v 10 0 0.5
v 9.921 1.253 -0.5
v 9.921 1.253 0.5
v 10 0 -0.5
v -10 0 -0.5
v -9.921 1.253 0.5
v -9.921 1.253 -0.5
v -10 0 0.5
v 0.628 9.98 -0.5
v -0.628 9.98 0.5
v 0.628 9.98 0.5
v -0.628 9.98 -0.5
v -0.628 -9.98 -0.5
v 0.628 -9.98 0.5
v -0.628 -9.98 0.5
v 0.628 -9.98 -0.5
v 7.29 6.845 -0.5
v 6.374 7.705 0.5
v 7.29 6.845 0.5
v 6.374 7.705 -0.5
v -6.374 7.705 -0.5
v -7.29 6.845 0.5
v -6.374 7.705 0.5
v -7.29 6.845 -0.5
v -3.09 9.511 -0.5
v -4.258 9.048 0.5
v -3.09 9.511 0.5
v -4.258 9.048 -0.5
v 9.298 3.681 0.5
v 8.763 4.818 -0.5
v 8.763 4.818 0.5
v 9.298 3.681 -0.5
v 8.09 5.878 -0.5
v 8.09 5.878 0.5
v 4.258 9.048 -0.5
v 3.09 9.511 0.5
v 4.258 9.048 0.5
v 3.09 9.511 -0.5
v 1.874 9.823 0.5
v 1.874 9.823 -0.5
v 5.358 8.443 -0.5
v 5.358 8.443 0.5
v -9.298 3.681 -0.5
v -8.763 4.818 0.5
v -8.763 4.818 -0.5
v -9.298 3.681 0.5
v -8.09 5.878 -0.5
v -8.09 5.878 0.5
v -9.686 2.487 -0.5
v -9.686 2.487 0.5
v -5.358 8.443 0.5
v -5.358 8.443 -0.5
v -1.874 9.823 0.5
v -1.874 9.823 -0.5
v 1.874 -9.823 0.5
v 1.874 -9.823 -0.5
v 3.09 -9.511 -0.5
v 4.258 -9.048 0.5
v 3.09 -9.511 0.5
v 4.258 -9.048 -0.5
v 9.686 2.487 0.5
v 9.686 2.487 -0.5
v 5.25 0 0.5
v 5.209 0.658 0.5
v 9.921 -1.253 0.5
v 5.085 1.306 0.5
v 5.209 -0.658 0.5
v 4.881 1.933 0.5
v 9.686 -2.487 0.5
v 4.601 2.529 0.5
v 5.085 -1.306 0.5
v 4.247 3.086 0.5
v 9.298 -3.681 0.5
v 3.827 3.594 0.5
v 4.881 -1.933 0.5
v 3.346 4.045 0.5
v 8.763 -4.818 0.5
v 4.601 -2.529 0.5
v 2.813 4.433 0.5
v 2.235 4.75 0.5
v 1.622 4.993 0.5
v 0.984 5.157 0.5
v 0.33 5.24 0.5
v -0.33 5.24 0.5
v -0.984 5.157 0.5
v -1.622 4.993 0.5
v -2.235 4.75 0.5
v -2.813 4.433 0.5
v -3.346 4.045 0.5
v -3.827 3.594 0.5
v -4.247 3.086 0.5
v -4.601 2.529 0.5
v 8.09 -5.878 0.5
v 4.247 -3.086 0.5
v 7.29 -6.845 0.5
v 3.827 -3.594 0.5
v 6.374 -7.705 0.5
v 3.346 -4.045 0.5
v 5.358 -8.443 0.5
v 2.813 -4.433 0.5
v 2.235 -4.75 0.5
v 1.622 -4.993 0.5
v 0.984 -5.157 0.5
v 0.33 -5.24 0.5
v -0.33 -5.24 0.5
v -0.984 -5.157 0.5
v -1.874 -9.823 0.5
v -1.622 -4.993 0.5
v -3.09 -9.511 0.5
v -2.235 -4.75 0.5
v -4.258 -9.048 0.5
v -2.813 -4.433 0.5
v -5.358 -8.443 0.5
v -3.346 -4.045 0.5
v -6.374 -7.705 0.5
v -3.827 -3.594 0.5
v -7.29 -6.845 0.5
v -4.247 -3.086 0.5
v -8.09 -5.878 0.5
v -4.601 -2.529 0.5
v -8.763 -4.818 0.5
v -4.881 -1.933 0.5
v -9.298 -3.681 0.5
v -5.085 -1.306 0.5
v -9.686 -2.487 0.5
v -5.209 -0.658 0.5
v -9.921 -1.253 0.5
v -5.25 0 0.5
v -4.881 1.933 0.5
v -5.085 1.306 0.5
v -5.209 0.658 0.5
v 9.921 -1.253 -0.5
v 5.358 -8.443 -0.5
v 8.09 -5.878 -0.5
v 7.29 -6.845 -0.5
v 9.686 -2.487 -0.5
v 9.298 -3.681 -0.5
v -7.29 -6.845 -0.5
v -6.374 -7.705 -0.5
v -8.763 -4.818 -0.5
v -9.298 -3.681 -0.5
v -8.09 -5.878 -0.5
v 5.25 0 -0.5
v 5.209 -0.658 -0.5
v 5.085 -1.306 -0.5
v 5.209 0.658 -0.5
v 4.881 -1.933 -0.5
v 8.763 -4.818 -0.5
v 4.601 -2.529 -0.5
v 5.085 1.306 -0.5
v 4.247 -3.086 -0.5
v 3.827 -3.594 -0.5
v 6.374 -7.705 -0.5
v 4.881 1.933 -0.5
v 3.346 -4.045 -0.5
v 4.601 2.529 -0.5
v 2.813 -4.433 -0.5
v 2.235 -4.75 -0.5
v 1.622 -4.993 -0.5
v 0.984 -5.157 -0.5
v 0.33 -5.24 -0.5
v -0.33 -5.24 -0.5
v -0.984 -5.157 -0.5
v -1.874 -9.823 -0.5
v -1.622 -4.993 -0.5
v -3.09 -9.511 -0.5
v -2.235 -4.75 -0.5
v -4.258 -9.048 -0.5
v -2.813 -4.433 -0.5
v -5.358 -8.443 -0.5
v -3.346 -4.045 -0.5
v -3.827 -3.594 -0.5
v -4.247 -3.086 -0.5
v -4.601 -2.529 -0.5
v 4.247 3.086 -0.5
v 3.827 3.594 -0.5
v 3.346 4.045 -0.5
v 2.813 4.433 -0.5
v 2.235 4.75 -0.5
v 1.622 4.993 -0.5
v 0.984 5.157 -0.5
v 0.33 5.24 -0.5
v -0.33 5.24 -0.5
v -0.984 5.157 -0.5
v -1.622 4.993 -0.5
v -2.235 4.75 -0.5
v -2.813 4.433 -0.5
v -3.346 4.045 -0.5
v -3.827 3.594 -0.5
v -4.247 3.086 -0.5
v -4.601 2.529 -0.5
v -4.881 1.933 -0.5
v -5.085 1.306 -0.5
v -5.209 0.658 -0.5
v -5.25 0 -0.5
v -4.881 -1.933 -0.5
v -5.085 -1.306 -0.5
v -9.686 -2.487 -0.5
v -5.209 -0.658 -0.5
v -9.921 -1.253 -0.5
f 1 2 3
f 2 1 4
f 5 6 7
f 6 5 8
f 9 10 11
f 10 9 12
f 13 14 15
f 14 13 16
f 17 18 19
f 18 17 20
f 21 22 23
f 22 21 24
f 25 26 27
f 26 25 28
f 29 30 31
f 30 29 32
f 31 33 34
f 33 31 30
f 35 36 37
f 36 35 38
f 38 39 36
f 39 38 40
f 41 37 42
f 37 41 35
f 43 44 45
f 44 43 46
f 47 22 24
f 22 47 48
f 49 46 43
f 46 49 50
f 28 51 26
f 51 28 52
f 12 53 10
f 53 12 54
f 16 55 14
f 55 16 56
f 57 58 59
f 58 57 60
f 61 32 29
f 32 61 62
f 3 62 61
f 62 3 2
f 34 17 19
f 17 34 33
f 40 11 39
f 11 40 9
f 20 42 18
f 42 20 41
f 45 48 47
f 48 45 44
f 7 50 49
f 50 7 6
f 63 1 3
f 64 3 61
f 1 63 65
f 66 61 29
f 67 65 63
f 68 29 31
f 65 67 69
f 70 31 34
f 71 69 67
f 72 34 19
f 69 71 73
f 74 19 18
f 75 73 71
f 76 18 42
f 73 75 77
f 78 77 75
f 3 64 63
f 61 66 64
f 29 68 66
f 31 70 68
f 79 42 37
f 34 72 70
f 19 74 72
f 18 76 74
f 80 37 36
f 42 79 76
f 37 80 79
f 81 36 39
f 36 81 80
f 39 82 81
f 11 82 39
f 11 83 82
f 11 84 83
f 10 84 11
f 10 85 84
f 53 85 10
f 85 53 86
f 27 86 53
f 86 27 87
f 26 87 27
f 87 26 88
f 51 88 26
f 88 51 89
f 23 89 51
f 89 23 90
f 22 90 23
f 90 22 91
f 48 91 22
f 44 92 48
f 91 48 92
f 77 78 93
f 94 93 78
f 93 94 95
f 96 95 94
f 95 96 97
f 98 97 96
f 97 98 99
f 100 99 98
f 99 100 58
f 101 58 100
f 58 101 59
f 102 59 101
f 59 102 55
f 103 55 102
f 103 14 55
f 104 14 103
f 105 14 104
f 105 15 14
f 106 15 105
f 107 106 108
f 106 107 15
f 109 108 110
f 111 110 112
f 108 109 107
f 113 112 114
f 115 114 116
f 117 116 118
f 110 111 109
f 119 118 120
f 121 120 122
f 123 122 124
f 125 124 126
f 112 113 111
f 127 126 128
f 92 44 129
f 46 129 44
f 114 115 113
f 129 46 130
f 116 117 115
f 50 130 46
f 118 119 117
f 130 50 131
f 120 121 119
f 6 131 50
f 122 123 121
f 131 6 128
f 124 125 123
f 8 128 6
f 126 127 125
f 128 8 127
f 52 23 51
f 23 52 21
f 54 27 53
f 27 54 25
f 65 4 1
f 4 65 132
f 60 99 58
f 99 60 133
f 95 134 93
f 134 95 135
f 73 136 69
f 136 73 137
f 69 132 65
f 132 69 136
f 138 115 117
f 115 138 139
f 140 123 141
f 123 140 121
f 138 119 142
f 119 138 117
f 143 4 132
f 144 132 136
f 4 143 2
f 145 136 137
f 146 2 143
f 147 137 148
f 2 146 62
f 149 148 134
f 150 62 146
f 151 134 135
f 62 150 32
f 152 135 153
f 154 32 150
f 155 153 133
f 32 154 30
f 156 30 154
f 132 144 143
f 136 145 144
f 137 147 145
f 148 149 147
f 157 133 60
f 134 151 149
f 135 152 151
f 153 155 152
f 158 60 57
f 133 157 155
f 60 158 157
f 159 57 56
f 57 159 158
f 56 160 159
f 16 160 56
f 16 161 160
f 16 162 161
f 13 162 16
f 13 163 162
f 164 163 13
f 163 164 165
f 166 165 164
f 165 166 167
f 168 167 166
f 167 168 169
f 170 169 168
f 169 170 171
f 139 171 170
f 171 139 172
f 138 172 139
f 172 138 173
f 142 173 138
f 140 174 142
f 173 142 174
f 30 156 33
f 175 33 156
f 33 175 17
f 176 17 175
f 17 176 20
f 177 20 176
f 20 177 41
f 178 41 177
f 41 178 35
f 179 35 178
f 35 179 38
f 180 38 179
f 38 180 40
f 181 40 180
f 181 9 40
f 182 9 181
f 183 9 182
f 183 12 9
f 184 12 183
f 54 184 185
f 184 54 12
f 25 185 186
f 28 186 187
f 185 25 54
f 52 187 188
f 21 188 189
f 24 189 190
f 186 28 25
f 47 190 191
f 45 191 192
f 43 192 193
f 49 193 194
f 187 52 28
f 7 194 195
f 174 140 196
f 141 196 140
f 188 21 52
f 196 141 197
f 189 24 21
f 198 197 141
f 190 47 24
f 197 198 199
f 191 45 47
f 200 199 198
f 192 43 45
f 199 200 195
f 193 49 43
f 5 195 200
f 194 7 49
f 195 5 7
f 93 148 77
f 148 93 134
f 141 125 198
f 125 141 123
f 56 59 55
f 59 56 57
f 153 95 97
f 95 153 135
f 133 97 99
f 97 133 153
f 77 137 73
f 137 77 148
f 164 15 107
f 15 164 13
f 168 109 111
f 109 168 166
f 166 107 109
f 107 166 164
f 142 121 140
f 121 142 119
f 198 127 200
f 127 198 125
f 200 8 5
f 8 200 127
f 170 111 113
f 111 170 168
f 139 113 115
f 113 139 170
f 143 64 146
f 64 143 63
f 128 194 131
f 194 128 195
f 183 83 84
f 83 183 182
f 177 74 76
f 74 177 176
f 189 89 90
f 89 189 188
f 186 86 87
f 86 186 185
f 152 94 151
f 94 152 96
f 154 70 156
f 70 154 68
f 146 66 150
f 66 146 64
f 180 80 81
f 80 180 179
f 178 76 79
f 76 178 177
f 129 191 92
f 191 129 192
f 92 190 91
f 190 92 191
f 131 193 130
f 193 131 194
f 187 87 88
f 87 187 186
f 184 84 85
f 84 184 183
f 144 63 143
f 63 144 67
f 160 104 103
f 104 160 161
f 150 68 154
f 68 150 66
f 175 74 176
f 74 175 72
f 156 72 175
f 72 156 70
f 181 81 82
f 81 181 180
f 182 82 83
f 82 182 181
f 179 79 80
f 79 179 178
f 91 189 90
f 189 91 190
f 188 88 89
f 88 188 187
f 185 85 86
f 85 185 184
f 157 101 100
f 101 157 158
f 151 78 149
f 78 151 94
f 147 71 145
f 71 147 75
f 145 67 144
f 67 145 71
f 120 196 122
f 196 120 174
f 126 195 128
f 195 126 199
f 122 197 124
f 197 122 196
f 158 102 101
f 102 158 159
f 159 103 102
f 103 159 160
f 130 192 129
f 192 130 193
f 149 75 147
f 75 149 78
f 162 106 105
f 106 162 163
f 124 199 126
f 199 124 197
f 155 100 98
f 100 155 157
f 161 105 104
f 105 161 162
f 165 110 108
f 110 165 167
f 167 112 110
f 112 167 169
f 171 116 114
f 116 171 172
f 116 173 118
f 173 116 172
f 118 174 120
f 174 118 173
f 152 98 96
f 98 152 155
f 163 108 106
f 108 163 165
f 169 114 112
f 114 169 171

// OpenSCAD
$fn = 50;


difference() {
	union() {
		translate(v = [0, 0, -0.5000000000]) {
			cylinder(h = 1, r = 10.0000000000);
		}
	}
	union() {
		translate(v = [0, 0, -100.0000000000]) {
			cylinder(h = 200, r = 5.2500000000);
		}
	}
}
